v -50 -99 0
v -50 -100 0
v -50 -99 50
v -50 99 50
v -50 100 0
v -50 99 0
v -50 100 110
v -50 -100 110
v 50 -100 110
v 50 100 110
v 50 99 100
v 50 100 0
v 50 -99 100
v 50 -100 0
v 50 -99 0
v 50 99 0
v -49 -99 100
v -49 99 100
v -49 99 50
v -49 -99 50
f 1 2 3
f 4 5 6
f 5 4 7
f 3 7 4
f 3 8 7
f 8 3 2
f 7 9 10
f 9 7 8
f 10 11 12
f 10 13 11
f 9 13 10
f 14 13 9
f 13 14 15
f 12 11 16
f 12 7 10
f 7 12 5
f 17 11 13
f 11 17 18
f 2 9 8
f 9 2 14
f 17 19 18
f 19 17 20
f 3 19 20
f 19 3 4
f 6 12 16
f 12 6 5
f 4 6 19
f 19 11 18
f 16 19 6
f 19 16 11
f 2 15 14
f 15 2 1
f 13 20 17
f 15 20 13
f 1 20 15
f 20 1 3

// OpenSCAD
union(){
    cube(size=[0, 0, 0]);
    translate(v=[-50, -100, 100]){
        color(""){
            cube(size=[100, 200, 10]);
        };
    };
    translate(v=[-50, -100, 50]){
        cube(size=[1, 200, 50]);
    };
    translate(v=[-50, 99, 0]){
        cube(size=[100, 1, 100]);
    };
    translate(v=[-50, -100, 0]){
        cube(size=[100, 1, 100]);
    };
};
